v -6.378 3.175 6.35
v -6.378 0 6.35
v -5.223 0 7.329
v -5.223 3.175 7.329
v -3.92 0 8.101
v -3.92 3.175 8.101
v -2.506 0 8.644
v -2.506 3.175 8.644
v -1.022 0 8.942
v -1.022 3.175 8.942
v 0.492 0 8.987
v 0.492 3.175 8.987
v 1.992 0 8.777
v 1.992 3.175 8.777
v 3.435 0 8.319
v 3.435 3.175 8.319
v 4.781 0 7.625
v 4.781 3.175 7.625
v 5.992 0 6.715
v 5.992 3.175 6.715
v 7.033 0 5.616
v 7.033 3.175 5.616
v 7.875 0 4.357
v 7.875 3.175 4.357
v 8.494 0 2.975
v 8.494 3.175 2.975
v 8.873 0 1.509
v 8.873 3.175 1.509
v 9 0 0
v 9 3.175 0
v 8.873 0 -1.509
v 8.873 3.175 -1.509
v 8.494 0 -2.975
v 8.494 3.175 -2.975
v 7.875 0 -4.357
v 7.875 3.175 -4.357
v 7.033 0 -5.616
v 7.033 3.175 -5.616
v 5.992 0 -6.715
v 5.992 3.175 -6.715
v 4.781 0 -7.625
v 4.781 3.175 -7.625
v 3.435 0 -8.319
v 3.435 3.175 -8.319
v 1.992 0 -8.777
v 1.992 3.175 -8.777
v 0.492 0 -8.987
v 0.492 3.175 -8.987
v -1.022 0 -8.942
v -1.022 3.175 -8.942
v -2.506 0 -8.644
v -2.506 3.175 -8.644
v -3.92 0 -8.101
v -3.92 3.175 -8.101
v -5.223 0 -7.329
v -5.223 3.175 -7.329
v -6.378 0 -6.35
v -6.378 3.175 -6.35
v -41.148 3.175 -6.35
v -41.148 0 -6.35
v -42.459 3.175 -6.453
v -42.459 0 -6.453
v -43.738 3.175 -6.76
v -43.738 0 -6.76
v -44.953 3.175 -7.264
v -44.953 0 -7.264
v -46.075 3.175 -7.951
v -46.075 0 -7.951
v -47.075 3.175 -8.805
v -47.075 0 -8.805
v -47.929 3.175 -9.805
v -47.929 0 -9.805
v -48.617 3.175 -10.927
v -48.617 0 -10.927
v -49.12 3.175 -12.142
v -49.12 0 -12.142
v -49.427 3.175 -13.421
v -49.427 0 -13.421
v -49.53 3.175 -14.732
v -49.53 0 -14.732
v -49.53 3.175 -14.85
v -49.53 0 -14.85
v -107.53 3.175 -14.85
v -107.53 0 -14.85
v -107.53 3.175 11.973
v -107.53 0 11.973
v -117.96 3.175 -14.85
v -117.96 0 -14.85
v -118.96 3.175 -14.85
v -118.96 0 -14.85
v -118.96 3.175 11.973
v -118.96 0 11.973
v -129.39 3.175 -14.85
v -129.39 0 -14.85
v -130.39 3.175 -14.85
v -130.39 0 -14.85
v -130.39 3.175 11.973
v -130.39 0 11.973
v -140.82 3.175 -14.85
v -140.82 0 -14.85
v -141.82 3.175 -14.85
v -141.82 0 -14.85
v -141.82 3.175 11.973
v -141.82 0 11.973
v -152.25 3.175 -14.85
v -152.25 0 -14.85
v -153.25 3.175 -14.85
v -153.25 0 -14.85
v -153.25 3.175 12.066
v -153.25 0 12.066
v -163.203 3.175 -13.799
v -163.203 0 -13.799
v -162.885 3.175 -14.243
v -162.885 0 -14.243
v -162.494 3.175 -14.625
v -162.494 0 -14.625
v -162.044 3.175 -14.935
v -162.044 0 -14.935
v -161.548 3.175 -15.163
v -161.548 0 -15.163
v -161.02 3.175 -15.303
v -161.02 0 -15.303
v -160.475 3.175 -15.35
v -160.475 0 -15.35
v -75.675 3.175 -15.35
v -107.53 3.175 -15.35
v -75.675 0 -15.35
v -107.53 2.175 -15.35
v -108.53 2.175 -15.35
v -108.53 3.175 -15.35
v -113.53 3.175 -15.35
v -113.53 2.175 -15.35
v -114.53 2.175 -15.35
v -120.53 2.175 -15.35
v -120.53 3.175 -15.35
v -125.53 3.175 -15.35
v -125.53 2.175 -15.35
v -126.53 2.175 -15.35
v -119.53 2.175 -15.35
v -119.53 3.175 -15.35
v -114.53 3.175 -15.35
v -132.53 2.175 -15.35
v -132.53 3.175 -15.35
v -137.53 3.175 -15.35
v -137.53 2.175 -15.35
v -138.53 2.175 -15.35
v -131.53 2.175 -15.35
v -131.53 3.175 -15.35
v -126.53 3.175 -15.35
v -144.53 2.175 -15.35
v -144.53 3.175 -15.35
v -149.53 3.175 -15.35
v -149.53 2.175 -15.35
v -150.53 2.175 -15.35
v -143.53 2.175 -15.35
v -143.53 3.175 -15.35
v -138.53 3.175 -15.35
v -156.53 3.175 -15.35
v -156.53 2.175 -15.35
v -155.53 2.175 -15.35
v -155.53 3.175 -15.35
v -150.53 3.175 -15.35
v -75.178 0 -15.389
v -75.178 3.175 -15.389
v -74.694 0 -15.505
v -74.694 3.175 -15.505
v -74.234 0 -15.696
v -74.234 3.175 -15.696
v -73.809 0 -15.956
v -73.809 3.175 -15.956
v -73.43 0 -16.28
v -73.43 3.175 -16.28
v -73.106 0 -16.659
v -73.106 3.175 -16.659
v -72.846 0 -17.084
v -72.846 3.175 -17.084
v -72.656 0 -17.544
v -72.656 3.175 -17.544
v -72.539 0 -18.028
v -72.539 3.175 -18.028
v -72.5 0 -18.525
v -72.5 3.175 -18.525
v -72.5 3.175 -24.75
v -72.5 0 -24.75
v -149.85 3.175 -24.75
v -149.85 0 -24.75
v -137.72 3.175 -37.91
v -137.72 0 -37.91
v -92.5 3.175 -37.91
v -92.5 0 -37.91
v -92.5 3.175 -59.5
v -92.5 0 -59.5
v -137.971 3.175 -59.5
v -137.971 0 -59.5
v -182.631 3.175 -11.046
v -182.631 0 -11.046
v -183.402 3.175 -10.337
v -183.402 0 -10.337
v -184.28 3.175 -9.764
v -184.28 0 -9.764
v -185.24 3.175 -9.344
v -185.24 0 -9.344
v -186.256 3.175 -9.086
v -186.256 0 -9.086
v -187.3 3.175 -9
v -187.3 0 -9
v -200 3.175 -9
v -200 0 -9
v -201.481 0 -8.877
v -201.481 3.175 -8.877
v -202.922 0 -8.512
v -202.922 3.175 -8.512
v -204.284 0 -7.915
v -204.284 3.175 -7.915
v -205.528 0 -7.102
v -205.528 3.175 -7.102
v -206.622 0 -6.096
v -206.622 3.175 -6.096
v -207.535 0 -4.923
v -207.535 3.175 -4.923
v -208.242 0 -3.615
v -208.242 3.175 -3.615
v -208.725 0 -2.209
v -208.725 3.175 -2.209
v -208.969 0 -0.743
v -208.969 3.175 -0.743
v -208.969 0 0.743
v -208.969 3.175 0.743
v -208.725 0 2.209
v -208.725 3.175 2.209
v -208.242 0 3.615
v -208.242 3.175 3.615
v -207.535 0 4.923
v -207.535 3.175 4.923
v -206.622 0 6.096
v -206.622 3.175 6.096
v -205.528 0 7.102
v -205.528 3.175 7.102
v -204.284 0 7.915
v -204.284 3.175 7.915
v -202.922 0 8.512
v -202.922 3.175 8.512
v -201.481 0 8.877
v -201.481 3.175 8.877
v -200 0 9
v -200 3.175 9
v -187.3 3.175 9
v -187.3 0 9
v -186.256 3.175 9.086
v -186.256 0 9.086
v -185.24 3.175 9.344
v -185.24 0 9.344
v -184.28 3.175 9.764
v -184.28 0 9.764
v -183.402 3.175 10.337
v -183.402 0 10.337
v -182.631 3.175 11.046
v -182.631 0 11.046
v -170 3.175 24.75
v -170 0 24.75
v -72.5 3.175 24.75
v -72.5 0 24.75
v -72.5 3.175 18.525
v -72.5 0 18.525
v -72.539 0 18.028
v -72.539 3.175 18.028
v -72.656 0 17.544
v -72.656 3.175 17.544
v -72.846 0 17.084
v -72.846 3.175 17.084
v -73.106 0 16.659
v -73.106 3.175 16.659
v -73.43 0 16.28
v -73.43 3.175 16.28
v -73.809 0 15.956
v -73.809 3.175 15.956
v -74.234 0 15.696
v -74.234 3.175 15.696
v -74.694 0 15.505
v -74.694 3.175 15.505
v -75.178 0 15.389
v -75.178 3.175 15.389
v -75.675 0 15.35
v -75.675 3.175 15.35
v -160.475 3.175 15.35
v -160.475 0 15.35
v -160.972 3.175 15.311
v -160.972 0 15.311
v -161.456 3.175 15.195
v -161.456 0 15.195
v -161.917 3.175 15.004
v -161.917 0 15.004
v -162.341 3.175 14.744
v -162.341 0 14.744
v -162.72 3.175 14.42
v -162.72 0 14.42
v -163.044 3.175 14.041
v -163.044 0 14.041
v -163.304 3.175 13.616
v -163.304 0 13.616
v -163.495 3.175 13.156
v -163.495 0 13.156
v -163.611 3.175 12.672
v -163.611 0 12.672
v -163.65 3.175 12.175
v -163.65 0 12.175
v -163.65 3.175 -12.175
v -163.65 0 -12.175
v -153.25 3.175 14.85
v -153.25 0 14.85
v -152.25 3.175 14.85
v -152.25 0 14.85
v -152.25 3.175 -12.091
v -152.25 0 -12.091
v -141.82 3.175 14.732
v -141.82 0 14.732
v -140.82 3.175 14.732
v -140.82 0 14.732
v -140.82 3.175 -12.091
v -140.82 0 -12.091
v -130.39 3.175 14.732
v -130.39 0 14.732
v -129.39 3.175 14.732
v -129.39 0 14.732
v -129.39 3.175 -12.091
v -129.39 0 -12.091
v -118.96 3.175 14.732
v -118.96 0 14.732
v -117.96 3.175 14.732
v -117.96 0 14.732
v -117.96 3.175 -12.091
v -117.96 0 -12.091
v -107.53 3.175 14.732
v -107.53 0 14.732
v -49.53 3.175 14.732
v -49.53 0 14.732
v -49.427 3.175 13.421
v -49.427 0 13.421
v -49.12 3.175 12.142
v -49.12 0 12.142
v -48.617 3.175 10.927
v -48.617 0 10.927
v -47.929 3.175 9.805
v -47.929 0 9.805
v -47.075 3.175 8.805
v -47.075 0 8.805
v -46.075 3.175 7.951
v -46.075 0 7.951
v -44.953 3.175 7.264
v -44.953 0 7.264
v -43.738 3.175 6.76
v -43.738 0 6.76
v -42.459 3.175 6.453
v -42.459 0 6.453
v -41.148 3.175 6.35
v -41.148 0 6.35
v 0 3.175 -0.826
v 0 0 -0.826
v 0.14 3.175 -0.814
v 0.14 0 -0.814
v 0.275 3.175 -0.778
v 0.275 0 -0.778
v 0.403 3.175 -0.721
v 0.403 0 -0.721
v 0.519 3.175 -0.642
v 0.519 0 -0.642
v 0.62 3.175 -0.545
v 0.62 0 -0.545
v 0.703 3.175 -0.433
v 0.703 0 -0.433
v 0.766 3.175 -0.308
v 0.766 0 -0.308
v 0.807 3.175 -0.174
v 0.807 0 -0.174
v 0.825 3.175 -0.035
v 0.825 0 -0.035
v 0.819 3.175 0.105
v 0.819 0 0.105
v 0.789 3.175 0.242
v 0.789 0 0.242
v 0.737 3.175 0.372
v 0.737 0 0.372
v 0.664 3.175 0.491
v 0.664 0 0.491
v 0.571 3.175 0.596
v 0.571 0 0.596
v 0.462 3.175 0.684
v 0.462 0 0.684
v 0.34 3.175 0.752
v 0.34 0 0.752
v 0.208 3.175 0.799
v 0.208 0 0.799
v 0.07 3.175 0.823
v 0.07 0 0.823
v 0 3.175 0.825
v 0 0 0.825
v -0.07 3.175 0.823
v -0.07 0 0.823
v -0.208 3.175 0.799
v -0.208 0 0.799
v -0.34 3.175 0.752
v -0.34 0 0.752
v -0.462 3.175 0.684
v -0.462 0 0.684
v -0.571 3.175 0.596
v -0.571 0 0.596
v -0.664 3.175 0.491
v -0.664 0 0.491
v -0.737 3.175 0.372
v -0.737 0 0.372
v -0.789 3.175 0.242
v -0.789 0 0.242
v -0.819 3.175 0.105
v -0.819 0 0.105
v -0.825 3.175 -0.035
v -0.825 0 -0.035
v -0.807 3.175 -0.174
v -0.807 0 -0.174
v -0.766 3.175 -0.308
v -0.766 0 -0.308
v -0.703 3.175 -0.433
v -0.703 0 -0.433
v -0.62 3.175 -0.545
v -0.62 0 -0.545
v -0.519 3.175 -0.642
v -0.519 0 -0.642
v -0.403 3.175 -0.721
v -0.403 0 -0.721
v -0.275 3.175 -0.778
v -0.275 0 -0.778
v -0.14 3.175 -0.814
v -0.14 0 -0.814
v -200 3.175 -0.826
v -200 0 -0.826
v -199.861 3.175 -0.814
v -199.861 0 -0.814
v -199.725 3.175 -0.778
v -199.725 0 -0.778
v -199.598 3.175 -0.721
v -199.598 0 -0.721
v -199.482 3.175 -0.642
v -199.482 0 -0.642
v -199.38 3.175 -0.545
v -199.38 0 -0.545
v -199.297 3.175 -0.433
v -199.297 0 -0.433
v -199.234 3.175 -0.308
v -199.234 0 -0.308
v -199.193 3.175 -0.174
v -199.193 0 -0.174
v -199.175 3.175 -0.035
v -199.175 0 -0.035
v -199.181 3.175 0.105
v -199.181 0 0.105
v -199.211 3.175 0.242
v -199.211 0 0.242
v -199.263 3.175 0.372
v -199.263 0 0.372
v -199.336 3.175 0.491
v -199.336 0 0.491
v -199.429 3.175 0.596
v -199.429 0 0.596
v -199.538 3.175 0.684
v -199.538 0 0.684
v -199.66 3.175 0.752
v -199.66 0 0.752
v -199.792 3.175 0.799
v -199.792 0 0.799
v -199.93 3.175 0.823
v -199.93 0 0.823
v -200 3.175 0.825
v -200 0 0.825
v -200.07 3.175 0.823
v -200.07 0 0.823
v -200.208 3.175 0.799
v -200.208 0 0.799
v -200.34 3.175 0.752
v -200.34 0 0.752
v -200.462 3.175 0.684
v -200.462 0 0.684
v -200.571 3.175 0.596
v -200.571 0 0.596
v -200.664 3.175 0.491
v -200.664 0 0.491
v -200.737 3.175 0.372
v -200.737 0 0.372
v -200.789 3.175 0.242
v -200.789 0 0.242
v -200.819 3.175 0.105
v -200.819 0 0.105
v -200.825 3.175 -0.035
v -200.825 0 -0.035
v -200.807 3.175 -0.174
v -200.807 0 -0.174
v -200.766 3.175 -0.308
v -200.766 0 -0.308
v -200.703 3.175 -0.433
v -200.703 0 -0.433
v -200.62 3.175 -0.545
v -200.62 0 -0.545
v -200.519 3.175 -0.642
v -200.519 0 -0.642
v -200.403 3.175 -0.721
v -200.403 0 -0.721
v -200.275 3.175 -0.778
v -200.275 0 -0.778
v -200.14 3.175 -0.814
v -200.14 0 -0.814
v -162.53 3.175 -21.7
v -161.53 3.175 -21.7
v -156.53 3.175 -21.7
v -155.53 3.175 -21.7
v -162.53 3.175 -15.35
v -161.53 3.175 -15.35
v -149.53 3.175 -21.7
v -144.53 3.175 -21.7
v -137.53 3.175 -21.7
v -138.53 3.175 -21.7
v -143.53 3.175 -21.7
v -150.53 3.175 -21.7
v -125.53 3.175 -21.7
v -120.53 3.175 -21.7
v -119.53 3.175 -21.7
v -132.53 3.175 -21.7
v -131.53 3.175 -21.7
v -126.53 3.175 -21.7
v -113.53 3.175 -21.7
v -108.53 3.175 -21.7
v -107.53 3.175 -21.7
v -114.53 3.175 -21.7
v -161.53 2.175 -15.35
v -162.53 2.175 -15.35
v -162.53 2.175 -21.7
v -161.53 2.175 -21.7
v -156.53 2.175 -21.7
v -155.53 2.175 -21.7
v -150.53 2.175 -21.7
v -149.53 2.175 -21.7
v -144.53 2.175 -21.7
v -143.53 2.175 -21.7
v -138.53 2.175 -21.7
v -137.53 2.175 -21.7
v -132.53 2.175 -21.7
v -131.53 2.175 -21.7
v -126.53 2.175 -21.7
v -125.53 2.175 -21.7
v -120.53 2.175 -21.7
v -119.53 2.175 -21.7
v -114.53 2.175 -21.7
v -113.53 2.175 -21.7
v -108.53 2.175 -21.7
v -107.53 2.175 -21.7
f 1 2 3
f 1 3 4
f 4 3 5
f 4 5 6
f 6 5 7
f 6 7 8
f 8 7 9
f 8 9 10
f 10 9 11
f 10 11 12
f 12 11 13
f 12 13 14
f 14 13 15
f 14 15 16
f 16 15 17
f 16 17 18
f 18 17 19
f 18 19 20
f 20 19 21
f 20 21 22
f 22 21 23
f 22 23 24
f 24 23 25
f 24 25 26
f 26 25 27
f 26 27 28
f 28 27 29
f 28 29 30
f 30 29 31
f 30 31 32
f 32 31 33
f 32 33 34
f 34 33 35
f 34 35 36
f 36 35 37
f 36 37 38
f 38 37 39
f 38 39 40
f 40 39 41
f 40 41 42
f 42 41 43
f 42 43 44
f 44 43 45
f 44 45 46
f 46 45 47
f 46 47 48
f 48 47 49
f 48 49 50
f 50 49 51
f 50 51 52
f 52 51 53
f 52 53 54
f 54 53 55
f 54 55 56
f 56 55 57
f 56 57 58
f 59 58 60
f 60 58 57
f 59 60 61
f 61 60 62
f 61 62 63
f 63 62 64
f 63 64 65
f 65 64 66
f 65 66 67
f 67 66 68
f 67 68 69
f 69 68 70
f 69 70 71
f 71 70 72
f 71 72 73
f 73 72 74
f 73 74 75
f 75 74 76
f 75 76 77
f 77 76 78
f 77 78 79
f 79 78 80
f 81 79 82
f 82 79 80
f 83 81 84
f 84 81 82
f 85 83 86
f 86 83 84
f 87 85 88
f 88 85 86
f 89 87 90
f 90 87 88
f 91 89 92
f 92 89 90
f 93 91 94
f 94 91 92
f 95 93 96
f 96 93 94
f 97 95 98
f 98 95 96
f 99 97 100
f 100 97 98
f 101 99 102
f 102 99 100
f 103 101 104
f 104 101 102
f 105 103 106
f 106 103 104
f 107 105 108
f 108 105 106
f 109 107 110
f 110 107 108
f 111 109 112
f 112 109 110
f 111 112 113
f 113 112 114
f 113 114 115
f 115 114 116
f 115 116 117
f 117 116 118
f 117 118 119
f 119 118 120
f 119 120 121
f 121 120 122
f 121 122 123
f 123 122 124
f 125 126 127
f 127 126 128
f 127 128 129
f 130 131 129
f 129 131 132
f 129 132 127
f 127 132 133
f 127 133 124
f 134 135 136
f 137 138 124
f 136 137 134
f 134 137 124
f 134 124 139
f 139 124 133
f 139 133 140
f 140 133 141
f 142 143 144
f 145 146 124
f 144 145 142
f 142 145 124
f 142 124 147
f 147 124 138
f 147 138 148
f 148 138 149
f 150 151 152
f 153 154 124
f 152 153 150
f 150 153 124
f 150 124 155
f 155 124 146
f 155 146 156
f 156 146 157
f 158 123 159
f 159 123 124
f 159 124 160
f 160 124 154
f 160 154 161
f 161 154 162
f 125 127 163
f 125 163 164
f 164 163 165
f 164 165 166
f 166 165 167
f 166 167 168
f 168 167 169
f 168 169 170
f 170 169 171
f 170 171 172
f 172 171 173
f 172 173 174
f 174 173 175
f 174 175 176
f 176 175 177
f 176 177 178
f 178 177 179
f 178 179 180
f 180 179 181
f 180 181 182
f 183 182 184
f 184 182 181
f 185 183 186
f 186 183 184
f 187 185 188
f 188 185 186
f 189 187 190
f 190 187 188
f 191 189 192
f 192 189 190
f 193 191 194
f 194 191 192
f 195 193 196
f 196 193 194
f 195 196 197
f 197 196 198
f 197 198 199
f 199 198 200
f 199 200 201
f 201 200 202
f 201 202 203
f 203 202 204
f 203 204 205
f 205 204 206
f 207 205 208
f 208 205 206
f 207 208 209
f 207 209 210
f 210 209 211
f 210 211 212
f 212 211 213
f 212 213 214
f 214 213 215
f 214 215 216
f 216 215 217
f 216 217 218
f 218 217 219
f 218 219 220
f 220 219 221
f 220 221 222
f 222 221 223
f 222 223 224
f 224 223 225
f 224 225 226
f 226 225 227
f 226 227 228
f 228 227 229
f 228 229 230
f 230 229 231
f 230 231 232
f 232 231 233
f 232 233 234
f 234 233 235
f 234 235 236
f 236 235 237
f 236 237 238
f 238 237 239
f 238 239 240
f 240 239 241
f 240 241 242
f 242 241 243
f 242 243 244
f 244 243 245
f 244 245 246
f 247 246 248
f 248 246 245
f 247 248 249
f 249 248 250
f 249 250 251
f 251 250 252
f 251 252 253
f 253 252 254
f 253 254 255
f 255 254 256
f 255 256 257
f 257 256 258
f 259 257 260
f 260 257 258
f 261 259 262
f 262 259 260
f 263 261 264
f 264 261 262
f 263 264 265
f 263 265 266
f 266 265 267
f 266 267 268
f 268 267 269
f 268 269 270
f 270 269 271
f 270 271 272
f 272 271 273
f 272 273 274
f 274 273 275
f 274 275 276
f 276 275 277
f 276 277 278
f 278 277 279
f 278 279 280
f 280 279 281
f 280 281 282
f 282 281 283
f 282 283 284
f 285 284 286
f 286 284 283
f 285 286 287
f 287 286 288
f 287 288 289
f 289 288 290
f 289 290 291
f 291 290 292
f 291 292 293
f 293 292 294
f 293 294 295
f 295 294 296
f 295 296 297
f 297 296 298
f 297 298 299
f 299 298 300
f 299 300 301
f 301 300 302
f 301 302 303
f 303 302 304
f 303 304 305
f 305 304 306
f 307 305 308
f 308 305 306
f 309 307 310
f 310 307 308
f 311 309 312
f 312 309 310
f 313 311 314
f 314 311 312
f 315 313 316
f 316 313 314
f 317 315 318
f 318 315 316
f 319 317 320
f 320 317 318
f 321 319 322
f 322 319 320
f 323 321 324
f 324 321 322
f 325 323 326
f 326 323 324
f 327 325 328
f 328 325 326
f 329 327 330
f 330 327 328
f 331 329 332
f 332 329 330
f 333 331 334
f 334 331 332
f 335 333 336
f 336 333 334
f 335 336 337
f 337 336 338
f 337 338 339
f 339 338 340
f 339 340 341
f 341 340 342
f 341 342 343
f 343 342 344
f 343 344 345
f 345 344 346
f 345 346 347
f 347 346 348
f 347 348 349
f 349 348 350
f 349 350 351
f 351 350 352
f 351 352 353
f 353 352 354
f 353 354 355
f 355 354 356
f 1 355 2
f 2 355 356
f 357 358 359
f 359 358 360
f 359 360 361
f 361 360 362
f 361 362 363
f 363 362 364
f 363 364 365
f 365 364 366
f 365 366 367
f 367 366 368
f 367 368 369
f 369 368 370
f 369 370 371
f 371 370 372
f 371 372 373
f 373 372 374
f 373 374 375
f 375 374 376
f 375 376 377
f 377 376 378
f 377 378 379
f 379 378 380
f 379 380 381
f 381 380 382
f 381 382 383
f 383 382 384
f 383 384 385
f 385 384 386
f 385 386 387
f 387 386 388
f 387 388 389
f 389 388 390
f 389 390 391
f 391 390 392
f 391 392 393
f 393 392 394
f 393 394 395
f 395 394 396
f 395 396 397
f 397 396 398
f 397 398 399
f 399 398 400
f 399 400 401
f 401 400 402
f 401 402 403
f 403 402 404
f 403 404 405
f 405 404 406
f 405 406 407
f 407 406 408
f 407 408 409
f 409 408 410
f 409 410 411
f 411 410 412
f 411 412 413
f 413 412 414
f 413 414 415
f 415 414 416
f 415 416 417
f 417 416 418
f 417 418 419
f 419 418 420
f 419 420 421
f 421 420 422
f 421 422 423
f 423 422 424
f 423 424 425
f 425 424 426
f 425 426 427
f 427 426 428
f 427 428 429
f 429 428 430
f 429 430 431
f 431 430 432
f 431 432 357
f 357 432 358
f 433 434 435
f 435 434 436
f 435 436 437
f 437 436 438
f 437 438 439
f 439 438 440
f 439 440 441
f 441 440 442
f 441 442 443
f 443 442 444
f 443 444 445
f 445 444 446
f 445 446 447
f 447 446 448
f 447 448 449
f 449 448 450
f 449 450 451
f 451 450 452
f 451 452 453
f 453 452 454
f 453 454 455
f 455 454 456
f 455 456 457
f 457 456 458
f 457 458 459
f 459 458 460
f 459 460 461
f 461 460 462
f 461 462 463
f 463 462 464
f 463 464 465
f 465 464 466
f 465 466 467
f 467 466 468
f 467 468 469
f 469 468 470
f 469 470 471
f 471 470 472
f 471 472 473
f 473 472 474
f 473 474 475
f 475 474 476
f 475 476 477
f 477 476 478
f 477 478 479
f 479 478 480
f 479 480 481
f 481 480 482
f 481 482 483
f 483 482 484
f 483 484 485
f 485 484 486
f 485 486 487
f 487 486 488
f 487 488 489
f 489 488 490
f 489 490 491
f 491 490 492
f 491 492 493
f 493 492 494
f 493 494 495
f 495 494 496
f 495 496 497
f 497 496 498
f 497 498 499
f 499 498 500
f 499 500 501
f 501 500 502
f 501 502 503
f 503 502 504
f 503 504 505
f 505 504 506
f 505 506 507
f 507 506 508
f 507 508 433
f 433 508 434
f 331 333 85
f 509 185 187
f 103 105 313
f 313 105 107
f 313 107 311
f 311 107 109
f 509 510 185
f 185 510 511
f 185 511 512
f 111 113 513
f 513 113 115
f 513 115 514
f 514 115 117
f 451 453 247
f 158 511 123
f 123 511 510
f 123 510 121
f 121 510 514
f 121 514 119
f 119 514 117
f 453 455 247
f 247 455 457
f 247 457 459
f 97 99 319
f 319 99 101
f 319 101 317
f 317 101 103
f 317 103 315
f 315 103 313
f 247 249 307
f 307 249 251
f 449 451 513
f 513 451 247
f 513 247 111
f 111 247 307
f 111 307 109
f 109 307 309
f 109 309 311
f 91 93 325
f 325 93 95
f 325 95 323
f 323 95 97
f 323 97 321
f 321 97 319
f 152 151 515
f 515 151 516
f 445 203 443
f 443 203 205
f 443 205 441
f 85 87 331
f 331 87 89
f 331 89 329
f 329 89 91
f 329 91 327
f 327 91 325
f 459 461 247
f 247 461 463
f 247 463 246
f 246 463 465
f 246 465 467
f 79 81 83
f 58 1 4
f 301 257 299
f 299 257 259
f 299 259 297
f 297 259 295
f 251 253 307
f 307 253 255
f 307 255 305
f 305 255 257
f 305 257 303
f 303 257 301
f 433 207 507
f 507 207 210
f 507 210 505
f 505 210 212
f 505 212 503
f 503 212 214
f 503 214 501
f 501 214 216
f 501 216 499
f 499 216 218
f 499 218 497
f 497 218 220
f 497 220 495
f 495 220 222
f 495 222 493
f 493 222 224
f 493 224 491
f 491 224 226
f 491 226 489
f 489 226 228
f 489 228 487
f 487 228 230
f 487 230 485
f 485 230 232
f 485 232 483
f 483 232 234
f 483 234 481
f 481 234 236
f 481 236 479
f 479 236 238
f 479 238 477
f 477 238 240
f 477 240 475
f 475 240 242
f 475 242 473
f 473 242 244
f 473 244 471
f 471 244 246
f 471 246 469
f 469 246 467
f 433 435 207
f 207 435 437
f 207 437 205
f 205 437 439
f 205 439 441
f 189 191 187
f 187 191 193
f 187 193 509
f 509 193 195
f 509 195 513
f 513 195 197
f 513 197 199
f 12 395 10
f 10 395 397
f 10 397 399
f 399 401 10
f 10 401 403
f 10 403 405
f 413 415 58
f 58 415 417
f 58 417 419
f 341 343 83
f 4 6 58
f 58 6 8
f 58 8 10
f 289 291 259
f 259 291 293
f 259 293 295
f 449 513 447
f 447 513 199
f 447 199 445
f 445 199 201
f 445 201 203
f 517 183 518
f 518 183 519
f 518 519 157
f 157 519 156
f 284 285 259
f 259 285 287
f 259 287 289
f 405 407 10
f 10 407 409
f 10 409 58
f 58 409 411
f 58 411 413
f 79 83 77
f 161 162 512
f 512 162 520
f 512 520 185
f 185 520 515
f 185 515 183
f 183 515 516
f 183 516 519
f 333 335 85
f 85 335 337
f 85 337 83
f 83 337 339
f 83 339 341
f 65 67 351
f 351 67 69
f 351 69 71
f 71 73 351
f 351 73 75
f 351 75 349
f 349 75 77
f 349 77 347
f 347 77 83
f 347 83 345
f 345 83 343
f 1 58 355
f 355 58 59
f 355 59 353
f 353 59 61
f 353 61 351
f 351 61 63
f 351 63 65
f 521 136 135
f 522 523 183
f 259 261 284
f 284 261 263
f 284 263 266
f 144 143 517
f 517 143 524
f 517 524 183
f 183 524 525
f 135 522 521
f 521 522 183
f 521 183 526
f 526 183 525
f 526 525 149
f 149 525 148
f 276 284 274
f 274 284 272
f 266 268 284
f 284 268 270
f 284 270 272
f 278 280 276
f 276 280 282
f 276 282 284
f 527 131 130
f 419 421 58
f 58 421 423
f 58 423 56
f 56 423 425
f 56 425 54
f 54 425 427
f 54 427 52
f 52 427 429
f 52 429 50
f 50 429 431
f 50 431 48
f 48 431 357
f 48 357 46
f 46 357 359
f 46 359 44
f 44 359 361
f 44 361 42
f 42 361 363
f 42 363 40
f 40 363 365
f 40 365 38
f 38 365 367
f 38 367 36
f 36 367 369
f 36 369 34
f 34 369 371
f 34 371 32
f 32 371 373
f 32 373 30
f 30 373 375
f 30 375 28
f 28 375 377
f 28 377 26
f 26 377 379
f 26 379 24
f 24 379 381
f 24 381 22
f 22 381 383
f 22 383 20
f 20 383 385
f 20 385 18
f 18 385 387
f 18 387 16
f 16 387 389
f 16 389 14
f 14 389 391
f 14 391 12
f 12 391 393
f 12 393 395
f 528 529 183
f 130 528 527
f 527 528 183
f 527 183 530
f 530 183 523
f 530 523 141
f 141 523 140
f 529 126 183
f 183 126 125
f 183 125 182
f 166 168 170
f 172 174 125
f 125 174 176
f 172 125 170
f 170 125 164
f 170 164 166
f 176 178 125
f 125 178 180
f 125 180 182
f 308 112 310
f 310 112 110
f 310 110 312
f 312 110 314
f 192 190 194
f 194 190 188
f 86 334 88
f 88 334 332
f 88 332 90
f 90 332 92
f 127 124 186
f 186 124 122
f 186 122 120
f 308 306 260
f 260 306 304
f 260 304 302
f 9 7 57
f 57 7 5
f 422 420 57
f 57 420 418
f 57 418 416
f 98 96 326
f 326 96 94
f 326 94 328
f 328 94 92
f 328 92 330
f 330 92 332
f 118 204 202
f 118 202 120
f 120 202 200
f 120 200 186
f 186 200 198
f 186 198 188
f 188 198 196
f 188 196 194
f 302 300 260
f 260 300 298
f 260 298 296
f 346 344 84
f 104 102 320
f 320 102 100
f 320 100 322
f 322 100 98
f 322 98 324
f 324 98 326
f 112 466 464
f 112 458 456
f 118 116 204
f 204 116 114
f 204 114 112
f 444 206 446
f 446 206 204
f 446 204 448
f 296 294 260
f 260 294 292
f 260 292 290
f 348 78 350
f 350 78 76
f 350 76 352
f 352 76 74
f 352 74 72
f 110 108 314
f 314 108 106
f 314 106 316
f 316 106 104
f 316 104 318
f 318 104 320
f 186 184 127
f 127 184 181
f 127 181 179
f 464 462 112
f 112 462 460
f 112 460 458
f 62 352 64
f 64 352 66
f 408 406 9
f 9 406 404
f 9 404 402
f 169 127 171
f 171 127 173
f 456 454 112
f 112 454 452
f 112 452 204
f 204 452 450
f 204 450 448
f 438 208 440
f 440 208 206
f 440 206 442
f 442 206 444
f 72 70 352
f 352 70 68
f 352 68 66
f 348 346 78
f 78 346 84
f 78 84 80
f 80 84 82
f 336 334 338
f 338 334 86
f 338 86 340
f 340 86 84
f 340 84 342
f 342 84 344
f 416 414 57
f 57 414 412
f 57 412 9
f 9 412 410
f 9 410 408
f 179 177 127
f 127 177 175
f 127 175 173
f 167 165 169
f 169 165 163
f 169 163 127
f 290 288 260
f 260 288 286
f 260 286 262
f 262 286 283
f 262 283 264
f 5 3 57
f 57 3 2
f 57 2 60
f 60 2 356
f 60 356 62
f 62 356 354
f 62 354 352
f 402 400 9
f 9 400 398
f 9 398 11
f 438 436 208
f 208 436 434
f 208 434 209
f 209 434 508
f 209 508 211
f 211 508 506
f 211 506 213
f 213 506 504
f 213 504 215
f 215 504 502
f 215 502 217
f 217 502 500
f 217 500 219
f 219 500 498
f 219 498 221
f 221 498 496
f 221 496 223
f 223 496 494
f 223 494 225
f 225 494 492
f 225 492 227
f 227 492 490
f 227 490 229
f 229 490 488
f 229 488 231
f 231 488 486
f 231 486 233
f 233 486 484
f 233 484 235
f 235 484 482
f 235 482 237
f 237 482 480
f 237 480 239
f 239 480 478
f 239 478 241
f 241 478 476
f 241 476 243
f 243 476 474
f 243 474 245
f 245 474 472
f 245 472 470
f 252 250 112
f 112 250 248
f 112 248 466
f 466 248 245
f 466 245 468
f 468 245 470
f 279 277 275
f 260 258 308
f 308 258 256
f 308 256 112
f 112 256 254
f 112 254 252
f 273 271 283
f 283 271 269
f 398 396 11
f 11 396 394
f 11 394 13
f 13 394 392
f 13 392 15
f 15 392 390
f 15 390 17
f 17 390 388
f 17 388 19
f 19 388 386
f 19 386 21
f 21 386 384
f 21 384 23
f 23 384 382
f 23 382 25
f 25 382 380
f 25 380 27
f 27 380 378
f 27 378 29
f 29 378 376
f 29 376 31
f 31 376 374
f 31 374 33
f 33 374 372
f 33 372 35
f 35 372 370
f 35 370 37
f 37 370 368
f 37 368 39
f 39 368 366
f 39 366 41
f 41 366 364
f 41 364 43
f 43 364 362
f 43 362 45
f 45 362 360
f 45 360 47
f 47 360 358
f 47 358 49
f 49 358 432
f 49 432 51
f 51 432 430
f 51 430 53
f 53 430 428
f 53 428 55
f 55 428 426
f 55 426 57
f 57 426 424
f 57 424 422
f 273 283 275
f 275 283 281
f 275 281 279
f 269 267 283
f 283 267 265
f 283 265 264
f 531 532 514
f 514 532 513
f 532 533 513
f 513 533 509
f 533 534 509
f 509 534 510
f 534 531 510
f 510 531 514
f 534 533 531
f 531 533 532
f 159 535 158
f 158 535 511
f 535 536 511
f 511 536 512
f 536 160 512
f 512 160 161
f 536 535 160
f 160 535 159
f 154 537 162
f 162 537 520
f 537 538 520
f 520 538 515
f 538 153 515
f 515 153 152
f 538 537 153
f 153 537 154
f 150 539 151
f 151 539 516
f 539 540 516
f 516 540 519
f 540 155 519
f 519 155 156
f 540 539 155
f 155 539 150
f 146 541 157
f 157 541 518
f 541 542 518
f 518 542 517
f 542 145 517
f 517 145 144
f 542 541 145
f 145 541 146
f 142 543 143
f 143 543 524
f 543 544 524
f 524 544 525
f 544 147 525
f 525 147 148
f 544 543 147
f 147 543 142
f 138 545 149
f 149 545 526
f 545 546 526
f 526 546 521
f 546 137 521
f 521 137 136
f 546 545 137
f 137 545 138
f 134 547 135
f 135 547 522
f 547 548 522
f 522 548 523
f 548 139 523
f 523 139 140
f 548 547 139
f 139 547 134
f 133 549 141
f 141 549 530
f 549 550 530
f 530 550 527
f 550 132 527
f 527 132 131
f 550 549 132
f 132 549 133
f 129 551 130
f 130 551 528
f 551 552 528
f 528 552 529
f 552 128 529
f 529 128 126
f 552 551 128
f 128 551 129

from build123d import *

# Parameters (mm, degrees)
SKETCH3_R           = 0.8255
BOSS_EXTRUDE1_DEPTH = 3.175
SKETCH4_W           = 1
SKETCH4_H           = 6.35
CUT_EXTRUDE1_DEPTH  = 1


with BuildPart() as part:
    # Sketch3 → Boss-Extrude1 (new body)
    with BuildSketch(Plane(origin=(0, 0, 0), x_dir=(1, 0, 0), z_dir=(0, 1, 0))):
        with BuildLine():
            Line((-187.300108, 9), (-200.000108, 9))
            ThreePointArc((-200.000108, 9), (-209.000108, 0), (-200.000108, -9))
            Line((-200.000108, -9), (-187.300108, -9))
            ThreePointArc((-187.300108, -9), (-184.751148517, -9.534047322), (-182.630933912, -11.046360455))
            Line((-182.630933912, -11.046360455), (-170.000108, -24.75))
            Line((-170.000108, -24.75), (-72.500108, -24.75))
            Line((-72.500108, -24.75), (-72.500108, -18.525))
            ThreePointArc((-72.500108, -18.525), (-73.43004397, -16.27993597), (-75.675108, -15.35))
            Line((-75.675108, -15.35), (-160.475108, -15.35))
            ThreePointArc((-160.475108, -15.35), (-162.72017203, -14.42006403), (-163.650108, -12.175))
            Line((-163.650108, -12.175), (-163.650108, 12.175))
            Line((-163.650108, 12.175), (-153.250108, -14.85))
            Line((-153.250108, -14.85), (-152.250108, -14.85))
            Line((-152.250108, -14.85), (-152.250108, 12.090726648))
            Line((-152.250108, 12.090726648), (-141.820108, -14.732))
            Line((-141.820108, -14.732), (-140.820108, -14.732))
            Line((-140.820108, -14.732), (-140.820108, 12.090726648))
            Line((-140.820108, 12.090726648), (-130.390108, -14.732))
            Line((-130.390108, -14.732), (-129.390108, -14.732))
            Line((-129.390108, -14.732), (-129.390108, 12.090726648))
            Line((-129.390108, 12.090726648), (-118.960108, -14.732))
            Line((-118.960108, -14.732), (-117.960108, -14.732))
            Line((-117.960108, -14.732), (-117.960108, 12.090726648))
            Line((-117.960108, 12.090726648), (-107.530108, -14.732))
            Line((-107.530108, -14.732), (-49.530108, -14.732))
            ThreePointArc((-49.530108, -14.732), (-47.07507704, -8.80503096), (-41.148108, -6.35))
            Line((-41.148108, -6.35), (-6.377891501, -6.35))
            ThreePointArc((-6.377891501, -6.35), (9, 0), (-6.377891501, 6.35))
            Line((-6.377891501, 6.35), (-41.148108, 6.35))
            ThreePointArc((-41.148108, 6.35), (-47.07507704, 8.80503096), (-49.530108, 14.732))
            Line((-49.530108, 14.732), (-49.530108, 14.85))
            Line((-49.530108, 14.85), (-107.530108, 14.85))
            Line((-107.530108, 14.85), (-107.530108, -11.972726648))
            Line((-107.530108, -11.972726648), (-117.960108, 14.85))
            Line((-117.960108, 14.85), (-118.960108, 14.85))
            Line((-118.960108, 14.85), (-118.960108, -11.972726648))
            Line((-118.960108, -11.972726648), (-129.390108, 14.85))
            Line((-129.390108, 14.85), (-130.390108, 14.85))
            Line((-130.390108, 14.85), (-130.390108, -11.972726648))
            Line((-130.390108, -11.972726648), (-140.820108, 14.85))
            Line((-140.820108, 14.85), (-141.820108, 14.85))
            Line((-141.820108, 14.85), (-141.820108, -11.972726648))
            Line((-141.820108, -11.972726648), (-152.250108, 14.85))
            Line((-152.250108, 14.85), (-153.250108, 14.85))
            Line((-153.250108, 14.85), (-153.250108, -12.065668468))
            Line((-153.250108, -12.065668468), (-163.203485052, 13.798756035))
            ThreePointArc((-163.203485052, 13.798756035), (-162.044375279, 14.935077029), (-160.475108, 15.35))
            Line((-160.475108, 15.35), (-75.675108, 15.35))
            ThreePointArc((-75.675108, 15.35), (-73.43004397, 16.27993597), (-72.500108, 18.525))
            Line((-72.500108, 18.525), (-72.500108, 24.75))
            Line((-72.500108, 24.75), (-149.849684915, 24.75))
            Line((-149.849684915, 24.75), (-137.719938766, 37.91))
            Line((-137.719938766, 37.91), (-92.500108, 37.91))
            Line((-92.500108, 37.91), (-92.500108, 59.5))
            Line((-92.500108, 59.5), (-137.970573146, 59.5))
            Line((-137.970573146, 59.5), (-182.630933912, 11.046360455))
            ThreePointArc((-182.630933912, 11.046360455), (-184.751148517, 9.534047322), (-187.300108, 9))
        make_face()
        with Locations(Location((0, 0, 0), (0, 0, 270))):
            Circle(SKETCH3_R, mode=Mode.SUBTRACT)
        with Locations(Location((-200.000108, 0, 0), (0, 0, 270))):
            Circle(SKETCH3_R, mode=Mode.SUBTRACT)
    extrude(amount=BOSS_EXTRUDE1_DEPTH)

    # Sketch4 → Cut-Extrude1 (cut)
    with BuildSketch(Plane(origin=(0, 3.175, 0), x_dir=(1, 0, 0), z_dir=(0, 1, 0))):
        with Locations((-108.030108, 18.525)):
            Rectangle(SKETCH4_W, SKETCH4_H)
        with Locations((-114.030108, 18.525)):
            Rectangle(SKETCH4_W, SKETCH4_H)
        with Locations((-120.030108, 18.525)):
            Rectangle(SKETCH4_W, SKETCH4_H)
        with Locations((-126.030108, 18.525)):
            Rectangle(SKETCH4_W, SKETCH4_H)
        with Locations((-132.030108, 18.525)):
            Rectangle(SKETCH4_W, SKETCH4_H)
        with Locations((-138.030108, 18.525)):
            Rectangle(SKETCH4_W, SKETCH4_H)
        with Locations((-144.030108, 18.525)):
            Rectangle(SKETCH4_W, SKETCH4_H)
        with Locations((-150.030108, 18.525)):
            Rectangle(SKETCH4_W, SKETCH4_H)
        with Locations((-156.030108, 18.525)):
            Rectangle(SKETCH4_W, SKETCH4_H)
        with Locations((-162.030108, 18.525)):
            Rectangle(SKETCH4_W, SKETCH4_H)
    extrude(amount=-CUT_EXTRUDE1_DEPTH, mode=Mode.SUBTRACT)


solid = part.part
